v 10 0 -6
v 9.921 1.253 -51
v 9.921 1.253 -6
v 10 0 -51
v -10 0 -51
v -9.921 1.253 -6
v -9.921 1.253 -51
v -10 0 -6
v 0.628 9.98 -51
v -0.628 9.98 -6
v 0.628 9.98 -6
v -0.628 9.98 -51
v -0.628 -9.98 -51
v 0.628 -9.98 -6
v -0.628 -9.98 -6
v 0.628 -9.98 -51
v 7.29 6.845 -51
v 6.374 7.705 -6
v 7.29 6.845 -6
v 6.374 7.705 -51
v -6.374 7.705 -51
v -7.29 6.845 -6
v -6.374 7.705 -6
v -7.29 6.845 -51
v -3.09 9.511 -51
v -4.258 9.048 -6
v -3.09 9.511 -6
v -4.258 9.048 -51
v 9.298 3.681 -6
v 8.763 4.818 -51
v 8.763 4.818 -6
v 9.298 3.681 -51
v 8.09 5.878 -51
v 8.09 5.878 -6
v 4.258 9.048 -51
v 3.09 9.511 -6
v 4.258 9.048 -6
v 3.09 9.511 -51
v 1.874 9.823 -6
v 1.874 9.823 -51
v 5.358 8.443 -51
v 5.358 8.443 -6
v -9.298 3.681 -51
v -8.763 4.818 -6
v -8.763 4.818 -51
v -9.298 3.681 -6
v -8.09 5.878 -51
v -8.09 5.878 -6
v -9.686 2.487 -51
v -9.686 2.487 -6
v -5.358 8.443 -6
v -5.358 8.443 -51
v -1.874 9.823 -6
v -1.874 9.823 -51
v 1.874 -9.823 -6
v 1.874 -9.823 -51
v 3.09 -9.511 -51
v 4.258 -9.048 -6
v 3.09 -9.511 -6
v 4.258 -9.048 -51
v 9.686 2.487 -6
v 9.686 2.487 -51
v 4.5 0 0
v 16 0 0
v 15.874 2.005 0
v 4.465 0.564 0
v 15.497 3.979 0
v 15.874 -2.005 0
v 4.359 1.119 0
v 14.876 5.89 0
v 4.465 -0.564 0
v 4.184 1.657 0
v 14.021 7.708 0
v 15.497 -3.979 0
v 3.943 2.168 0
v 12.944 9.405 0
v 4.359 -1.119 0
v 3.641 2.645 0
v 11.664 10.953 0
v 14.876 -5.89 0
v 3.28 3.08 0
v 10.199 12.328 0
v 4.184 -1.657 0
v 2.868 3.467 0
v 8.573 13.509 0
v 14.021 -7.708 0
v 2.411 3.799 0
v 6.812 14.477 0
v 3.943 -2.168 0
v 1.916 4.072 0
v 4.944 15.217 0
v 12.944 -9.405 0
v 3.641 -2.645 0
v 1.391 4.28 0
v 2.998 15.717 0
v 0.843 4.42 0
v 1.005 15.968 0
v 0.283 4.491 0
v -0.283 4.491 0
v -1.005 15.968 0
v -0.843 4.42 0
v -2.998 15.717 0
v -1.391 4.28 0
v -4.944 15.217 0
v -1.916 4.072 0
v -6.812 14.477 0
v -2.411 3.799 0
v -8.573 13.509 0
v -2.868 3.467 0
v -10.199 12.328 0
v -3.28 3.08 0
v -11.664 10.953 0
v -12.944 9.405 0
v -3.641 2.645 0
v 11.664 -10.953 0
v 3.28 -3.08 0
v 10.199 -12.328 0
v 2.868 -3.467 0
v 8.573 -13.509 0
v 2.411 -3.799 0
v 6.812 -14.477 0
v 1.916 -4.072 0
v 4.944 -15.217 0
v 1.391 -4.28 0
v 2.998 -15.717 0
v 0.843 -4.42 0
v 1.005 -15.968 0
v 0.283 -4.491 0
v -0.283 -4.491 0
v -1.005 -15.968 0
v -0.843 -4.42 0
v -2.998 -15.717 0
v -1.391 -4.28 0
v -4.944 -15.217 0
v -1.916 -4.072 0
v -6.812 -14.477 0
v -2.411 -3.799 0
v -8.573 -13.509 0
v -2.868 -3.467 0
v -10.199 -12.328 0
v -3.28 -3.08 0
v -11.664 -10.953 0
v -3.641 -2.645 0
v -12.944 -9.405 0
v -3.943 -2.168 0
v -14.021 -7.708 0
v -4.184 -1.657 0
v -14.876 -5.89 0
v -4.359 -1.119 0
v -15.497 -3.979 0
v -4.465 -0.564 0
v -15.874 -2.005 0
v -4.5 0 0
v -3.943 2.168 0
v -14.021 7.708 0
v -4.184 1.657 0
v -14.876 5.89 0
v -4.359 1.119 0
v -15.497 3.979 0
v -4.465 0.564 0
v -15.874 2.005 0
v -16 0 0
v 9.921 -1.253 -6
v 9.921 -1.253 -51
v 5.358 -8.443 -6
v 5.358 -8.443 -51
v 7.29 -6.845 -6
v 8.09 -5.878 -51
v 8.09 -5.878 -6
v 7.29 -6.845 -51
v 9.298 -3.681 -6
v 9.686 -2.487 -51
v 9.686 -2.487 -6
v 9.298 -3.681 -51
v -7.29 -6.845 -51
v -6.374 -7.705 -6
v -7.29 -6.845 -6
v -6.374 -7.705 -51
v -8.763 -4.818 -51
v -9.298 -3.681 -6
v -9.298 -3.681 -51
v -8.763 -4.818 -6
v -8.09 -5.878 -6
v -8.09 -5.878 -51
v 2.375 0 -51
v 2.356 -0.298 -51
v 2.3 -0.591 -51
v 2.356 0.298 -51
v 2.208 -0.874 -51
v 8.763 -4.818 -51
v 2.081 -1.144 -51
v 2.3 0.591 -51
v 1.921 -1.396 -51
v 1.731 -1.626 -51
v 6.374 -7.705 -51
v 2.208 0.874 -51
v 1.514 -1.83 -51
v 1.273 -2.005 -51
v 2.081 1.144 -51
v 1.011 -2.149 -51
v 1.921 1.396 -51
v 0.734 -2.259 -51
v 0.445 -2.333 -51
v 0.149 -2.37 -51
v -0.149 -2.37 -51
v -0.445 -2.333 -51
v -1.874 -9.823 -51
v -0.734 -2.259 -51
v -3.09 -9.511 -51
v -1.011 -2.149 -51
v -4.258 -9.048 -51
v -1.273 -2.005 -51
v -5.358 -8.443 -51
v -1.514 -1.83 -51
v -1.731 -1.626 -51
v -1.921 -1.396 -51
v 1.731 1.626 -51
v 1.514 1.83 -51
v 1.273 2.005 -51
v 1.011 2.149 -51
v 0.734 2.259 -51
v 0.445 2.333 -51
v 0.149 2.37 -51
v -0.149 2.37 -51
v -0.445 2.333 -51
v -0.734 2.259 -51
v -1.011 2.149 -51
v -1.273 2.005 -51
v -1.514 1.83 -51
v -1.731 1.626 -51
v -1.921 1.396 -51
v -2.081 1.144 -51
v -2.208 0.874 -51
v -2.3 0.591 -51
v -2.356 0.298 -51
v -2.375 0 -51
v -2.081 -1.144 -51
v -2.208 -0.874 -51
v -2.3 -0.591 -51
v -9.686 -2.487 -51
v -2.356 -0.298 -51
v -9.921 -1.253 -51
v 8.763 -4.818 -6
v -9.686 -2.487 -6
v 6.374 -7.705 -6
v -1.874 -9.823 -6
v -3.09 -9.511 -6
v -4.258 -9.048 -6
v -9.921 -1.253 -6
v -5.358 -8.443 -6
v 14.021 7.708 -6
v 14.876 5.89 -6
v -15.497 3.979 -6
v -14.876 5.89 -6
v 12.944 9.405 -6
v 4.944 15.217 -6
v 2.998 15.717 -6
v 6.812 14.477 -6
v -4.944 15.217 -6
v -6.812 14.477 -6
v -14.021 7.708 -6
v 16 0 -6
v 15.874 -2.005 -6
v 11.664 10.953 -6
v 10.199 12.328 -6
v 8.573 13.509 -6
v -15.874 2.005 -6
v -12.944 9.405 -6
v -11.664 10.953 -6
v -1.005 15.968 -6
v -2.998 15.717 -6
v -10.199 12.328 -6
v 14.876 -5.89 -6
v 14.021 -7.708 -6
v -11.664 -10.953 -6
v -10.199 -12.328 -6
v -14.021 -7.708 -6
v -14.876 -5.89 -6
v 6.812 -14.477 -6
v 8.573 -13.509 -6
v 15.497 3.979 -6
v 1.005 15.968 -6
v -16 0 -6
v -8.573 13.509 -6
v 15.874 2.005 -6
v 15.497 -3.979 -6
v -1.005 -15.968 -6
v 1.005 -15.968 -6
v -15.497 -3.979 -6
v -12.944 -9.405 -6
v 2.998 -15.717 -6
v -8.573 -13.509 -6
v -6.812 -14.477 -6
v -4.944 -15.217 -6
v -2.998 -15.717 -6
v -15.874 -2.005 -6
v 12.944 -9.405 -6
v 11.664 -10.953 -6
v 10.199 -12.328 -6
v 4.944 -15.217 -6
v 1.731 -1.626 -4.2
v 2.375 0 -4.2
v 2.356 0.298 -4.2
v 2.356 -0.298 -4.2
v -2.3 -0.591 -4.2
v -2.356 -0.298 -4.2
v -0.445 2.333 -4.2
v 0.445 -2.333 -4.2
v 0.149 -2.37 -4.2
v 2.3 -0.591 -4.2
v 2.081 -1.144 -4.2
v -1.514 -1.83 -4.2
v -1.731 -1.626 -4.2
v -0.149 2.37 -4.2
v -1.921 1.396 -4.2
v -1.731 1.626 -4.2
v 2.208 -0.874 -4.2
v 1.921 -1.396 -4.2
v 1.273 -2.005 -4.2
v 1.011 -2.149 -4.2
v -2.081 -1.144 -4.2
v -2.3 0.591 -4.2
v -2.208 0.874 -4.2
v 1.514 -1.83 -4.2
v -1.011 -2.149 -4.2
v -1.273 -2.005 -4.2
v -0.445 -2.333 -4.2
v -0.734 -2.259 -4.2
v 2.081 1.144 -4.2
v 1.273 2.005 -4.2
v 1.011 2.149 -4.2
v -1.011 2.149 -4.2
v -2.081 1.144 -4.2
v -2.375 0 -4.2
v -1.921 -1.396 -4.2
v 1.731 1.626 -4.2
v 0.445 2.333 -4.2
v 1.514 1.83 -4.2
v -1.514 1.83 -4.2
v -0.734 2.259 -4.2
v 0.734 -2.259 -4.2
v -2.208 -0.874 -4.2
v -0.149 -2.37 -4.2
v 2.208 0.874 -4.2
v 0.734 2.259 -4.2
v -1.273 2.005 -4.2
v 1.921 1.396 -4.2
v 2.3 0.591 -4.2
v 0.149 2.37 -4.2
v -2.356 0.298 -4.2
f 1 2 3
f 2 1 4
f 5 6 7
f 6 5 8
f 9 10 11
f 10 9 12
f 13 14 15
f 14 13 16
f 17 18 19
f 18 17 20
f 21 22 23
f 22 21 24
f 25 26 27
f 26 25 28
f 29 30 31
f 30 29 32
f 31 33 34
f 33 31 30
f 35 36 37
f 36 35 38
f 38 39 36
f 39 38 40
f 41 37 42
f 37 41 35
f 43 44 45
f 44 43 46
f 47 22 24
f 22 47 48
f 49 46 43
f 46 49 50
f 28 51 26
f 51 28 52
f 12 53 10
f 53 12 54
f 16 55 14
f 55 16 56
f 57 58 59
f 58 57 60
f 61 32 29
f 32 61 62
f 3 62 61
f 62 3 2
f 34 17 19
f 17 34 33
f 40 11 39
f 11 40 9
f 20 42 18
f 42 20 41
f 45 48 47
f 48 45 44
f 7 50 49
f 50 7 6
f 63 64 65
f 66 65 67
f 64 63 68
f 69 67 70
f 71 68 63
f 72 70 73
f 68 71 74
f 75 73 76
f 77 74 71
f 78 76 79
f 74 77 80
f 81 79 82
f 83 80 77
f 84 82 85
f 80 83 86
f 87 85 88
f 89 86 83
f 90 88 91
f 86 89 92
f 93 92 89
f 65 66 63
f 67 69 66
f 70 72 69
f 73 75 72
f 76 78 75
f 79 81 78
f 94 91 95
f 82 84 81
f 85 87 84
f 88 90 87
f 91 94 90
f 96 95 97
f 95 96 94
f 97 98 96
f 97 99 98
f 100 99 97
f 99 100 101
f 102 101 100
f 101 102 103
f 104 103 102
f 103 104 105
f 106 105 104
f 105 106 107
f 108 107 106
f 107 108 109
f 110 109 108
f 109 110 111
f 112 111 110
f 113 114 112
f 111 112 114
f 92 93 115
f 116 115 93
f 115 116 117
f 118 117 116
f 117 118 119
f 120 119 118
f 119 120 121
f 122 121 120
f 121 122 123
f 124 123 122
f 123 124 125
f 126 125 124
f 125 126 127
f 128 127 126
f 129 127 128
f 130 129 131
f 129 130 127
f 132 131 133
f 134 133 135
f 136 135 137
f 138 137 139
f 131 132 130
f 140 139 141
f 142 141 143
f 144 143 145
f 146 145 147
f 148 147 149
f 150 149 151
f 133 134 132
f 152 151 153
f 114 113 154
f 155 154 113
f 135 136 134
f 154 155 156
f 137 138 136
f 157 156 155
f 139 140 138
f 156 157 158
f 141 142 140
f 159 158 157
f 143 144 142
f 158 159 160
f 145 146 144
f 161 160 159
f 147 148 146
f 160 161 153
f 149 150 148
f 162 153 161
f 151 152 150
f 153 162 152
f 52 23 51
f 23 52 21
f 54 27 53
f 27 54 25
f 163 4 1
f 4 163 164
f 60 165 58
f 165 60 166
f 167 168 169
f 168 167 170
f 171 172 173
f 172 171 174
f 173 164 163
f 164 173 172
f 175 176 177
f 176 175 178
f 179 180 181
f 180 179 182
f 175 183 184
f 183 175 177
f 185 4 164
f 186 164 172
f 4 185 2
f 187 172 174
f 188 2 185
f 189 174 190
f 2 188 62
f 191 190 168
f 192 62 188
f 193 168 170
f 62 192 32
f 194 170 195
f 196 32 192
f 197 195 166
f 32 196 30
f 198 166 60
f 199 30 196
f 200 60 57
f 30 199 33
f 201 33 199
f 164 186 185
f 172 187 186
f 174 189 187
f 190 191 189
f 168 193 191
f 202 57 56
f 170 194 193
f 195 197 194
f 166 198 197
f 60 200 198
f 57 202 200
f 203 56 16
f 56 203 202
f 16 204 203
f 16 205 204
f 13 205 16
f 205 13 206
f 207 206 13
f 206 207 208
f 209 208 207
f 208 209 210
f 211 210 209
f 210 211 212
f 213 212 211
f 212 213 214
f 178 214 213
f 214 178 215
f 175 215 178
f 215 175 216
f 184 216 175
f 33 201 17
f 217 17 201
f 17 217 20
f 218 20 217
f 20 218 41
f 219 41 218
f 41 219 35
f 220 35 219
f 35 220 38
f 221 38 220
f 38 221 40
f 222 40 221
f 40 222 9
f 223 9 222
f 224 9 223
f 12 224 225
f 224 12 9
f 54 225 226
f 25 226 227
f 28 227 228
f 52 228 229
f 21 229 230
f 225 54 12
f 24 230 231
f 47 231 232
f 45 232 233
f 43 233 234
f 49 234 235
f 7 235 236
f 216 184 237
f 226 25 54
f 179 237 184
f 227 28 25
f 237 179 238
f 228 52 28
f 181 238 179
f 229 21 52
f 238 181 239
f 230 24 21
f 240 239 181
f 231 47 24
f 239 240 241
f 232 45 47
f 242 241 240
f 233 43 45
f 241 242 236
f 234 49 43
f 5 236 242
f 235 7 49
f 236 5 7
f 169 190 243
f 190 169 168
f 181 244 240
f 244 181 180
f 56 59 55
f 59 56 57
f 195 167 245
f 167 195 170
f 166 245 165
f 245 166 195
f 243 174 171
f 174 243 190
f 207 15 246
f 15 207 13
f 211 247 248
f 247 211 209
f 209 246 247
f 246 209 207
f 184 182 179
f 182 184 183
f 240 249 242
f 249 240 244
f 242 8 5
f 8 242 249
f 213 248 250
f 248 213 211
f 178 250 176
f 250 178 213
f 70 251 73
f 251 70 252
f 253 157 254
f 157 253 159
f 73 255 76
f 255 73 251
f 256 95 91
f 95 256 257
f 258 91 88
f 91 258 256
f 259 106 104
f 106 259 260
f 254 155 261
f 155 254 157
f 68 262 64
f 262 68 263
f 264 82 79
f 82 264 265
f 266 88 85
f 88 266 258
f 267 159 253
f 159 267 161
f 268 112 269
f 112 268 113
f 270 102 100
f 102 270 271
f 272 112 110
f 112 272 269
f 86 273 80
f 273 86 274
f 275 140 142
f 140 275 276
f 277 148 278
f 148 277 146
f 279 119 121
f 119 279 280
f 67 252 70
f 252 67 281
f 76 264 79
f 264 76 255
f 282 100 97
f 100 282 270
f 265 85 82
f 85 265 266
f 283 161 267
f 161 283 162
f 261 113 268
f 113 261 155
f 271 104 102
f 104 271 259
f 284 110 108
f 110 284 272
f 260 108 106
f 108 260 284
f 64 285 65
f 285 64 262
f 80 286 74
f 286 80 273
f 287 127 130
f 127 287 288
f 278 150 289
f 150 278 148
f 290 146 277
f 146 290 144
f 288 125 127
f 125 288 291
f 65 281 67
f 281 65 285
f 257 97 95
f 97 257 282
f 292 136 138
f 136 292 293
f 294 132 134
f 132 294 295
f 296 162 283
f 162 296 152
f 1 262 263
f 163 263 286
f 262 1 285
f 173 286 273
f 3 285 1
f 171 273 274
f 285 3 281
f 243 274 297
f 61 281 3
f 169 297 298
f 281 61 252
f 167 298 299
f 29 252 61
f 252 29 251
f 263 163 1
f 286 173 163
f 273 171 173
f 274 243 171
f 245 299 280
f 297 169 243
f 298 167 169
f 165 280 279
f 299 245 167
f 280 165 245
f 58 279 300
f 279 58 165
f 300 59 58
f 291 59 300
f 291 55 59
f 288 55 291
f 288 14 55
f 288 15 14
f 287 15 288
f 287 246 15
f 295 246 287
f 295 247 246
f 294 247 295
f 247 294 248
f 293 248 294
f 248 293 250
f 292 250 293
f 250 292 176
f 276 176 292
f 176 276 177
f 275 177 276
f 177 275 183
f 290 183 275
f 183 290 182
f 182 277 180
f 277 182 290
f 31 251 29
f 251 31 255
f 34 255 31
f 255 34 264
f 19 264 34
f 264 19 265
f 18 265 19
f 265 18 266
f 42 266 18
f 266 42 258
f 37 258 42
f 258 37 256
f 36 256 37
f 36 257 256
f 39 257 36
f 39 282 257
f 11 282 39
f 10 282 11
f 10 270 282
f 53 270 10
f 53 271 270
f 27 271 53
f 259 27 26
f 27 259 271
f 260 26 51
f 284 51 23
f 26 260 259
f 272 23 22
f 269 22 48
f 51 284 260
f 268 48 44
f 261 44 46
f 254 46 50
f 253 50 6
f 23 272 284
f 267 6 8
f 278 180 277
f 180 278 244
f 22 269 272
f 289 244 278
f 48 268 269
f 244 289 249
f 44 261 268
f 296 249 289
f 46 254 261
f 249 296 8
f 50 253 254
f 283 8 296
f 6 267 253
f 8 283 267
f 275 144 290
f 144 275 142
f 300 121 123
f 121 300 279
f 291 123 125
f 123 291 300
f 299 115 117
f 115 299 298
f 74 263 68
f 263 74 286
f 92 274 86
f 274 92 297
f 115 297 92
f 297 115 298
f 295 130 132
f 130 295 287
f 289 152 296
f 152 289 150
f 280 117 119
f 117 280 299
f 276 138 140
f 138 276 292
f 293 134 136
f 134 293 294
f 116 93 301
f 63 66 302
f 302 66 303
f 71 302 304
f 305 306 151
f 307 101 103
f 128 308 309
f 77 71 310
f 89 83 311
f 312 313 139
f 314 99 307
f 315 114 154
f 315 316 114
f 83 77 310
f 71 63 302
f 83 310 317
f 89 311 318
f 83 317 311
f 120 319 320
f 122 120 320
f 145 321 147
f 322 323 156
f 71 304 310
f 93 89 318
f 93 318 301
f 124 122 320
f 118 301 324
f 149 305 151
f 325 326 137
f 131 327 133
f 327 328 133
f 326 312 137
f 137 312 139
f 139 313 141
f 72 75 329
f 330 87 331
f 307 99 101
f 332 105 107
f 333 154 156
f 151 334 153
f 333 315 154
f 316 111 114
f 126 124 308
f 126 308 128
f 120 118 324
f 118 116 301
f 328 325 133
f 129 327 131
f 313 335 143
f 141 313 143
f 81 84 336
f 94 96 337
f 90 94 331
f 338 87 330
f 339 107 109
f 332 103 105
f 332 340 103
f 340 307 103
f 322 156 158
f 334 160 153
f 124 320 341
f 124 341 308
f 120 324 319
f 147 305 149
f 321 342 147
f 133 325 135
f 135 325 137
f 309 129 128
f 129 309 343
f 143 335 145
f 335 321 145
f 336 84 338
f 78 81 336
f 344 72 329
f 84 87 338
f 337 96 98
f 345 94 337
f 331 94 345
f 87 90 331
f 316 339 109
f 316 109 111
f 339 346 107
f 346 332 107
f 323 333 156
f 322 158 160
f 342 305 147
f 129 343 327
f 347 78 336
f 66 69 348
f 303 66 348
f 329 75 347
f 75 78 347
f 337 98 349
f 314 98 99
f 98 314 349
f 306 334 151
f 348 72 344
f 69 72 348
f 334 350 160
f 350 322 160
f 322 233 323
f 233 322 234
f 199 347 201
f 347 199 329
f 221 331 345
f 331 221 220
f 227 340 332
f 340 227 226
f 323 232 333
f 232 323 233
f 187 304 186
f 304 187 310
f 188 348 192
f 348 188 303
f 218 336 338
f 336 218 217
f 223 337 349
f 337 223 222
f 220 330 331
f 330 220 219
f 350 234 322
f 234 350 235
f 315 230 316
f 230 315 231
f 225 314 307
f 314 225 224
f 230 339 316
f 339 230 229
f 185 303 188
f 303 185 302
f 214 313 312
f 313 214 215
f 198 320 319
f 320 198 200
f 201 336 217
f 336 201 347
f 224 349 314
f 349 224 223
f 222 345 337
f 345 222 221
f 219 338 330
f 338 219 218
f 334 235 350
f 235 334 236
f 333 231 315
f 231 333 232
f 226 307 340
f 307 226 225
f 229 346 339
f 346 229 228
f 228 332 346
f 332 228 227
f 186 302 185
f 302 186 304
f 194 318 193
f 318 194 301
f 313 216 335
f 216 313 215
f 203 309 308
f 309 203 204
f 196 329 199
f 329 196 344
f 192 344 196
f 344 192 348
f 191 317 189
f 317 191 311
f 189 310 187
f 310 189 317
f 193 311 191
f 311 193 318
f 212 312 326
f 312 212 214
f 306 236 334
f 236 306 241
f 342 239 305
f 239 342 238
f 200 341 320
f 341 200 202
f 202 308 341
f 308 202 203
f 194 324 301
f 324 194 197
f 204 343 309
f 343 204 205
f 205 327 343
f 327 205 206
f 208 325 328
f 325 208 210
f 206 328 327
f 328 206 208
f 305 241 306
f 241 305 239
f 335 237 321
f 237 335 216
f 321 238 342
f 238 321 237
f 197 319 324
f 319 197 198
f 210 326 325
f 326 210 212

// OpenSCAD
$fn = 50;


difference() {
	union() {
		translate(v = [0, 0, -51.0000000000]) {
			cylinder(h = 51, r = 10.0000000000);
		}
		translate(v = [0, 0, -6.0000000000]) {
			cylinder(h = 6, r = 16.0000000000);
		}
	}
	union() {
		translate(v = [0, 0, 0]) {
			rotate(a = [0, 0, 0]) {
				difference() {
					union() {
						#translate(v = [0, 0, -51.0000000000]) {
							cylinder(h = 51, r = 2.2500000000);
						}
						#translate(v = [0, 0, -4.2000000000]) {
							cylinder(h = 4.2000000000, r = 10.0000000000, r1 = 2.3750000000, r2 = 4.5000000000);
						}
						#translate(v = [0, 0, -51.0000000000]) {
							cylinder(h = 51, r = 2.3750000000);
						}
						#translate(v = [0, 0, -51.0000000000]) {
							cylinder(h = 51, r = 2.2500000000);
						}
					}
					union();
				}
			}
		}
	}
}
